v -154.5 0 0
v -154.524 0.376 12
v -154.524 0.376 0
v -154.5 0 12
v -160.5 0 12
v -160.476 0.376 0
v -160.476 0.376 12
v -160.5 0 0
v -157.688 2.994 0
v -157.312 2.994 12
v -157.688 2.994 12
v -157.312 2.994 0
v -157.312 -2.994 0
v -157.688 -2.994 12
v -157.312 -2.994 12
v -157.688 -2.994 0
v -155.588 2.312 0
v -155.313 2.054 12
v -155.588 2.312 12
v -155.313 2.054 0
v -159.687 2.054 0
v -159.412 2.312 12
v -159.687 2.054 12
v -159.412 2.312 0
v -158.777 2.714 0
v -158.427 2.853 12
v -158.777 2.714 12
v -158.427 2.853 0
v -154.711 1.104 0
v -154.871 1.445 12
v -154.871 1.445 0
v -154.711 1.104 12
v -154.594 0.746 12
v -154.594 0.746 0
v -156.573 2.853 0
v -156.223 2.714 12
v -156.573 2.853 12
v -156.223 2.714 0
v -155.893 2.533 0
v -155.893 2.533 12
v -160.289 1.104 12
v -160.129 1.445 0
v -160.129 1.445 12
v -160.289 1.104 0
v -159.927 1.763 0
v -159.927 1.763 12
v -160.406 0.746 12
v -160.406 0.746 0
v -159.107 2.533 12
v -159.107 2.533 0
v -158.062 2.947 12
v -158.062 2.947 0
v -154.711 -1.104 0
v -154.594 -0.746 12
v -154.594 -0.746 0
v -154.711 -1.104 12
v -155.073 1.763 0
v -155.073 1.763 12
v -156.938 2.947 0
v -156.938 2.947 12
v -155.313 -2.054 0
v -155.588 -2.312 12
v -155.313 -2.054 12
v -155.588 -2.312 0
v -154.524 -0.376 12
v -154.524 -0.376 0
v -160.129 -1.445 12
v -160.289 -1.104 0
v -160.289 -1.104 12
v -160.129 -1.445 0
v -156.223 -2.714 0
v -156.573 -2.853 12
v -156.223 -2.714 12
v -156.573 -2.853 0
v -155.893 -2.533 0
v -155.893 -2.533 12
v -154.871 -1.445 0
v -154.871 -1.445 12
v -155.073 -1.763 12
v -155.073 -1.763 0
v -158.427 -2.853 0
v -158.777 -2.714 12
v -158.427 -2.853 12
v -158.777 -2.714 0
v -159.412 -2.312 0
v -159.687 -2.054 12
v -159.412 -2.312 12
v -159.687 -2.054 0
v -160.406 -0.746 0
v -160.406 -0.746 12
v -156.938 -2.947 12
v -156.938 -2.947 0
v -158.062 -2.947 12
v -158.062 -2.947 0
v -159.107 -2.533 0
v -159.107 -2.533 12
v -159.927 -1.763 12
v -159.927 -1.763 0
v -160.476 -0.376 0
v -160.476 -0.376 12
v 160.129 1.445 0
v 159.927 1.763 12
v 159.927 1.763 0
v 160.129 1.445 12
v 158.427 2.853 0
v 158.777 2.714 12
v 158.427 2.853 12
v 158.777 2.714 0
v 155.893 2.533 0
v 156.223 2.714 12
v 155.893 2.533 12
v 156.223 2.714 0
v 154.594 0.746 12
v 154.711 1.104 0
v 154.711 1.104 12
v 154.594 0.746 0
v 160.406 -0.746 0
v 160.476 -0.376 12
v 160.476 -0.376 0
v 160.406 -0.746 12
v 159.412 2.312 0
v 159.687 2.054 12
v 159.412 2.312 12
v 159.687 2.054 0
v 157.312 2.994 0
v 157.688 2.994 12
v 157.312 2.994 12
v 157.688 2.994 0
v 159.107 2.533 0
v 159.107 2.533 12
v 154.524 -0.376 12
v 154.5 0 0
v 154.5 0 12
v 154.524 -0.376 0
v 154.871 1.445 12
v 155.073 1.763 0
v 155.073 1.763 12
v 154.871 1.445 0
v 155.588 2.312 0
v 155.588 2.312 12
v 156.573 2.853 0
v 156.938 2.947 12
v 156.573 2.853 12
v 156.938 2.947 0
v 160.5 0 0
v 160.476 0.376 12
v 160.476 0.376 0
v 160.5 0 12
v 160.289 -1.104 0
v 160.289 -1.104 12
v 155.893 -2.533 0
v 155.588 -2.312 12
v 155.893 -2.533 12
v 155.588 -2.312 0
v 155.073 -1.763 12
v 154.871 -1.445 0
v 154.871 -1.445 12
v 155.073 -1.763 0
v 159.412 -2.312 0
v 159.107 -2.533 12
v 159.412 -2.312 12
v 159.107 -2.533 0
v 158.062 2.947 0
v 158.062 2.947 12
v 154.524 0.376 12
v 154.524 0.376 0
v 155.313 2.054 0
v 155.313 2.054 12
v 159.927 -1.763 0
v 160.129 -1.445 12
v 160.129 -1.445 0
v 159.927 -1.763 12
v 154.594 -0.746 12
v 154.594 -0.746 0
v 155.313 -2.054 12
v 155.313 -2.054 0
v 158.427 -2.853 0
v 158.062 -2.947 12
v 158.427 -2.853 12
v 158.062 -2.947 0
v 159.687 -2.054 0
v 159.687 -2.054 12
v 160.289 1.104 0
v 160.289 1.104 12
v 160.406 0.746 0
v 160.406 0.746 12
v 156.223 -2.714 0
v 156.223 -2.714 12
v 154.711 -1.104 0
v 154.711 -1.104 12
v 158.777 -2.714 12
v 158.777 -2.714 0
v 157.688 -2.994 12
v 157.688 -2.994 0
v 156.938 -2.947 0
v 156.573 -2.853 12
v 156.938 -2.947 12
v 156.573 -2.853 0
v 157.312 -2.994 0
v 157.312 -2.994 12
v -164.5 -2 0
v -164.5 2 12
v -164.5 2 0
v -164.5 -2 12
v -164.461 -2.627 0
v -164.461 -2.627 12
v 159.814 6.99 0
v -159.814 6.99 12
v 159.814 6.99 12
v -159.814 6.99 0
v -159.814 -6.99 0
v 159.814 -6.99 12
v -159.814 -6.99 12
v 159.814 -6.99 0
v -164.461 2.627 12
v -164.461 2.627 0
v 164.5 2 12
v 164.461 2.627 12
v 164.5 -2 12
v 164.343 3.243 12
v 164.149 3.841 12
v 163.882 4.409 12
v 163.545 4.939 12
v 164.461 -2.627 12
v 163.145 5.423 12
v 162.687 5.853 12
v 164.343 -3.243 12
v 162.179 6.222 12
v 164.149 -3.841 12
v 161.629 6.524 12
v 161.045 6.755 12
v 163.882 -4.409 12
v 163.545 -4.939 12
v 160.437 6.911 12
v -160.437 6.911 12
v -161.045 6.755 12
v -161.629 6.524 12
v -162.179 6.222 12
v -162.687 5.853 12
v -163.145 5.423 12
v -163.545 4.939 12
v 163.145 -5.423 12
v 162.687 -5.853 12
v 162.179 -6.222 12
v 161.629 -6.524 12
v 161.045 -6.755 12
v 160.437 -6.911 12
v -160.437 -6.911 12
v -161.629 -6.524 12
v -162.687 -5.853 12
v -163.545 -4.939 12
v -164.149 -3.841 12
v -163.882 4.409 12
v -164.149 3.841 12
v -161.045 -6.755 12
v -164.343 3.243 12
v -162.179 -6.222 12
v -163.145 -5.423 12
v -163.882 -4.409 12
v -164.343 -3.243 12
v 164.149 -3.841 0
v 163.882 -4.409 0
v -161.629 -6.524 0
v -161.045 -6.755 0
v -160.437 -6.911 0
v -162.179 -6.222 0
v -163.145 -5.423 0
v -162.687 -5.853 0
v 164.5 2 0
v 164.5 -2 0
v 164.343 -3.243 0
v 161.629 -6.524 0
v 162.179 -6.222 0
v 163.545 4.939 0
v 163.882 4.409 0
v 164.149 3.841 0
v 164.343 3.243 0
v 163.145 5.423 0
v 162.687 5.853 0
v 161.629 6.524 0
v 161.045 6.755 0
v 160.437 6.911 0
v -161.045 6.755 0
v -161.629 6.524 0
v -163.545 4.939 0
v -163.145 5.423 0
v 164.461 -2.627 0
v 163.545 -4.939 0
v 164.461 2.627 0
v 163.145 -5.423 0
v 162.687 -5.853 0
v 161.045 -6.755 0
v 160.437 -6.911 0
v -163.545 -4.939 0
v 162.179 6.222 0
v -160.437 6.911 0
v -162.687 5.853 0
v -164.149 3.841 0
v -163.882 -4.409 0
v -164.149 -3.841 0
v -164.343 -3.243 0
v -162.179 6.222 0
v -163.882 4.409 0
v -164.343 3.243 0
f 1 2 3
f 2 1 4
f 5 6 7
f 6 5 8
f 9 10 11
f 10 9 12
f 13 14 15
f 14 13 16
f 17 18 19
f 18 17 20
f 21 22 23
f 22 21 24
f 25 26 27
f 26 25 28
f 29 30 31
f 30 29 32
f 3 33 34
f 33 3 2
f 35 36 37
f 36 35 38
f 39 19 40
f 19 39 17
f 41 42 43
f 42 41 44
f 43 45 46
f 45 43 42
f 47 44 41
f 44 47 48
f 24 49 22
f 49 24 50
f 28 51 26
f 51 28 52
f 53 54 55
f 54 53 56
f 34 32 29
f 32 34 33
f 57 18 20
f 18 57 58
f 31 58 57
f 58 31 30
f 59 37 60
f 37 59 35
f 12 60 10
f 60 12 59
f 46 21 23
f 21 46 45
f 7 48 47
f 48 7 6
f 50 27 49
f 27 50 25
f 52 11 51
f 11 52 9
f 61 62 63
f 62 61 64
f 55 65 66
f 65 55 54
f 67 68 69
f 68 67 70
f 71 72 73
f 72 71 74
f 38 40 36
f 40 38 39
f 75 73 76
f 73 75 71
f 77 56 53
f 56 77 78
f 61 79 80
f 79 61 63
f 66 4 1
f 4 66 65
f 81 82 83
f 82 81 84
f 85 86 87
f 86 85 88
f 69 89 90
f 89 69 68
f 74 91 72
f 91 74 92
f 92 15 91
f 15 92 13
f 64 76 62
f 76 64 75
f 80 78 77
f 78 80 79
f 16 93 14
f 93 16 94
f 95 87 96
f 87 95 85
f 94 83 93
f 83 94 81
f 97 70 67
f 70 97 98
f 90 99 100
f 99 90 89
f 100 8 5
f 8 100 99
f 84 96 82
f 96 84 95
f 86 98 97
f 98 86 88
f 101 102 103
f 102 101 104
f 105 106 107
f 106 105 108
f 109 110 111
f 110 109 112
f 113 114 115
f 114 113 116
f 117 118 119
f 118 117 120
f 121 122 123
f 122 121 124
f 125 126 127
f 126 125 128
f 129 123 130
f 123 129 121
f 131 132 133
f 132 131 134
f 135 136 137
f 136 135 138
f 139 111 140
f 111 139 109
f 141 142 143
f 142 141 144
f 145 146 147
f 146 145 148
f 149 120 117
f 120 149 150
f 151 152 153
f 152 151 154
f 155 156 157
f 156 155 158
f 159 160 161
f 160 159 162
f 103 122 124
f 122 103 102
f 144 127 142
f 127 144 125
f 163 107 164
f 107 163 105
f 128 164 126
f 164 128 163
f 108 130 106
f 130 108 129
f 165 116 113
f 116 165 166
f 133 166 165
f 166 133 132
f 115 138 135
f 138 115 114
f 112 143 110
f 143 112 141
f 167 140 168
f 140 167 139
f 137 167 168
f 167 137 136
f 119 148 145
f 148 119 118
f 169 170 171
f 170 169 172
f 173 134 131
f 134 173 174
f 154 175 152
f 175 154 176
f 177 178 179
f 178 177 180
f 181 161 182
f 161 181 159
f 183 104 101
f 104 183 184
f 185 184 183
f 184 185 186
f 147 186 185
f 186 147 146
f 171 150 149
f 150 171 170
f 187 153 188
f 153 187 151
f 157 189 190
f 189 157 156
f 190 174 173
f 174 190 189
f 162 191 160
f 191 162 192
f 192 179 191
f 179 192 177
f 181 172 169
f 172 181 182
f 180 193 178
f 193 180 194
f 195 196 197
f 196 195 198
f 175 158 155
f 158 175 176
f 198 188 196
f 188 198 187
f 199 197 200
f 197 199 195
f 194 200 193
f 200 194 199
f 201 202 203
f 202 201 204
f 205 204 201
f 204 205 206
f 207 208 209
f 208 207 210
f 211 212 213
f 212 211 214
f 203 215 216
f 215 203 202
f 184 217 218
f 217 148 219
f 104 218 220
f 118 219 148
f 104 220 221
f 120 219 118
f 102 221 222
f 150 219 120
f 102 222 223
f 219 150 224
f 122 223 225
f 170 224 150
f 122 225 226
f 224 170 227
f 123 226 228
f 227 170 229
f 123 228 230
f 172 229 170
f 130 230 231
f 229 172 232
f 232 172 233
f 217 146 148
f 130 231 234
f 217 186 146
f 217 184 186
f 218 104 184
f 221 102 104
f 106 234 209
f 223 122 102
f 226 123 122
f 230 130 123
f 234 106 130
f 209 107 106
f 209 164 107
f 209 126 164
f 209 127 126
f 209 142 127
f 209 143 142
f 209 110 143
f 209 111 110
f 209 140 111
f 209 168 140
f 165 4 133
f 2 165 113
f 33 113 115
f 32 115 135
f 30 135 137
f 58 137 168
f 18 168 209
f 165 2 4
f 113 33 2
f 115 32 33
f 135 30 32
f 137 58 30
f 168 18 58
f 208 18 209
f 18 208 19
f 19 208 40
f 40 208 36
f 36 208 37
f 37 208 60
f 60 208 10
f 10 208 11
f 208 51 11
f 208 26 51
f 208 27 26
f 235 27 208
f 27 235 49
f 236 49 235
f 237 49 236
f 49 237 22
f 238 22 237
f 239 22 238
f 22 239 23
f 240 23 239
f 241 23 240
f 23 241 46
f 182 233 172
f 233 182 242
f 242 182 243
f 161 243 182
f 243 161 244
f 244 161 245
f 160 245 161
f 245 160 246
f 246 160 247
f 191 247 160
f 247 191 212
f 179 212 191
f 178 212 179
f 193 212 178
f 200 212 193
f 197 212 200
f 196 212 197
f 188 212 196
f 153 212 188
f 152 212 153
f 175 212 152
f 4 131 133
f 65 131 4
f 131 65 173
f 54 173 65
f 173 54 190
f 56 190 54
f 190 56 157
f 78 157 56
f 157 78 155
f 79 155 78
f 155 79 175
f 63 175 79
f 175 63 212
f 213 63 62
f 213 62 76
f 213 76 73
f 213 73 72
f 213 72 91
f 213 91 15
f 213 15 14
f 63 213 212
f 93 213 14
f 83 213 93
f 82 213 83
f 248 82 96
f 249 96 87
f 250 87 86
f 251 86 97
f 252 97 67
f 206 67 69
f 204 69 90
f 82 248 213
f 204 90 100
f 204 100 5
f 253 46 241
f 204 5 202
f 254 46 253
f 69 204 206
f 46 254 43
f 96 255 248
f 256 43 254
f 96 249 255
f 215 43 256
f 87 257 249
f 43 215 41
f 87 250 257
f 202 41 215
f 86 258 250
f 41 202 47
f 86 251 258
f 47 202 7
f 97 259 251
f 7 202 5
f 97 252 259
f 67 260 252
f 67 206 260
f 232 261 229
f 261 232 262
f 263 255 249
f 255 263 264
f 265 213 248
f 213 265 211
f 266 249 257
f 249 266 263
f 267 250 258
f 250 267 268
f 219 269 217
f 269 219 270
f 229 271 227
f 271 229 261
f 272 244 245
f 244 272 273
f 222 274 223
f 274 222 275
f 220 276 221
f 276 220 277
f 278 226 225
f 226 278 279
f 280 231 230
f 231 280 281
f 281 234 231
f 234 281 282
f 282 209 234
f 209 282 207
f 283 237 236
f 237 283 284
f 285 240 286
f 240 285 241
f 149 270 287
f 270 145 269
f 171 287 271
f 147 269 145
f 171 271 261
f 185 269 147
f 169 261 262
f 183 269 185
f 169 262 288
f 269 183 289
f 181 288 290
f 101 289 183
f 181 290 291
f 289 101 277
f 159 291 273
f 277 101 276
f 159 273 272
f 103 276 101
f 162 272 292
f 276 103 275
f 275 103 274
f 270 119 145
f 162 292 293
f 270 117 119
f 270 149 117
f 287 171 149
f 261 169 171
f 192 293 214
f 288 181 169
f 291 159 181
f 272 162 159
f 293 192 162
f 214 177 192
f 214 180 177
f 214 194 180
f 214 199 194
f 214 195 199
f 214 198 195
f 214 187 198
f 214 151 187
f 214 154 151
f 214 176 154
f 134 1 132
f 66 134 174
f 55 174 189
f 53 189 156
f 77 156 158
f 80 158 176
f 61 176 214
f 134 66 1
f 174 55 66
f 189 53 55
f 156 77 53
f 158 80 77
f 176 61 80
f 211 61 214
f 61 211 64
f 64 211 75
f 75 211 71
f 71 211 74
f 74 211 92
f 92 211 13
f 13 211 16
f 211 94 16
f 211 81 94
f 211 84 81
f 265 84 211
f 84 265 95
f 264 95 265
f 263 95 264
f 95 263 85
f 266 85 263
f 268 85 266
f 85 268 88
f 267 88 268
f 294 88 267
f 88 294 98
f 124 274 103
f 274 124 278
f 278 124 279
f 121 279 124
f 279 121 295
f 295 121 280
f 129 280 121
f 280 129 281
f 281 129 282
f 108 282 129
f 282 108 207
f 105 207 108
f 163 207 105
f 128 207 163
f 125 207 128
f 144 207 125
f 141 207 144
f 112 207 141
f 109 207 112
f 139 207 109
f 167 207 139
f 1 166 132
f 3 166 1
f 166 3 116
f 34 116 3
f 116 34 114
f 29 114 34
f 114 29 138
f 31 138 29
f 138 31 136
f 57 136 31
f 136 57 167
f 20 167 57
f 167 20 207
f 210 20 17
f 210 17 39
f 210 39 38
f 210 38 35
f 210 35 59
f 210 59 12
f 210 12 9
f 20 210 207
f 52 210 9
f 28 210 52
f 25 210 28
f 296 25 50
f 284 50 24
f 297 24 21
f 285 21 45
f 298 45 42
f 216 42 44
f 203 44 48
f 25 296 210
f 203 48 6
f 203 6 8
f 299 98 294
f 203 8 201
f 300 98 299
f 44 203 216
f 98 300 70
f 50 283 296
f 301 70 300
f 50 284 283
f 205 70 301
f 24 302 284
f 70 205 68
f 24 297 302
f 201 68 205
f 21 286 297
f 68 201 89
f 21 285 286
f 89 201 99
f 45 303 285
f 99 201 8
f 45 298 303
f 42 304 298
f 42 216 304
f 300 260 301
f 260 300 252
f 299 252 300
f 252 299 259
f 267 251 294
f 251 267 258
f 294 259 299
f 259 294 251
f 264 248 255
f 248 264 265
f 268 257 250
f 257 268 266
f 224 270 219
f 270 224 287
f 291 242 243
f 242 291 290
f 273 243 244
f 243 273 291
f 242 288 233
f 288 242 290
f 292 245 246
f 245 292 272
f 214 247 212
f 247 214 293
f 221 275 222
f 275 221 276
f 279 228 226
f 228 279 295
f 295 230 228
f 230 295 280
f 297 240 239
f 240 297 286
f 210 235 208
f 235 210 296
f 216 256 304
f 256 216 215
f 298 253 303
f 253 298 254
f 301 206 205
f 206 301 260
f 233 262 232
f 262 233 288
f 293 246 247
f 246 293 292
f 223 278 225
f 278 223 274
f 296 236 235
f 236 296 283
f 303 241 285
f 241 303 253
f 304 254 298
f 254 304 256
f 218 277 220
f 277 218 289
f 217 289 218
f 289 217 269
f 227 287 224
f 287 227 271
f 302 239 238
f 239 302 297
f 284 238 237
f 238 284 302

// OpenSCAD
$fn = 50;


difference() {
	union() {
		hull() {
			translate(v = [-159.5000000000, 2.0000000000, 0]) {
				cylinder(h = 12, r = 5);
			}
			translate(v = [159.5000000000, 2.0000000000, 0]) {
				cylinder(h = 12, r = 5);
			}
			translate(v = [-159.5000000000, -2.0000000000, 0]) {
				cylinder(h = 12, r = 5);
			}
			translate(v = [159.5000000000, -2.0000000000, 0]) {
				cylinder(h = 12, r = 5);
			}
		}
	}
	union() {
		translate(v = [-157.5000000000, 0.0000000000, -100.0000000000]) {
			cylinder(h = 200, r = 3.0000000000);
		}
		translate(v = [-157.5000000000, 0.0000000000, -100.0000000000]) {
			cylinder(h = 200, r = 3.0000000000);
		}
		translate(v = [157.5000000000, 0.0000000000, -100.0000000000]) {
			cylinder(h = 200, r = 3.0000000000);
		}
		translate(v = [157.5000000000, 0.0000000000, -100.0000000000]) {
			cylinder(h = 200, r = 3.0000000000);
		}
	}
}
